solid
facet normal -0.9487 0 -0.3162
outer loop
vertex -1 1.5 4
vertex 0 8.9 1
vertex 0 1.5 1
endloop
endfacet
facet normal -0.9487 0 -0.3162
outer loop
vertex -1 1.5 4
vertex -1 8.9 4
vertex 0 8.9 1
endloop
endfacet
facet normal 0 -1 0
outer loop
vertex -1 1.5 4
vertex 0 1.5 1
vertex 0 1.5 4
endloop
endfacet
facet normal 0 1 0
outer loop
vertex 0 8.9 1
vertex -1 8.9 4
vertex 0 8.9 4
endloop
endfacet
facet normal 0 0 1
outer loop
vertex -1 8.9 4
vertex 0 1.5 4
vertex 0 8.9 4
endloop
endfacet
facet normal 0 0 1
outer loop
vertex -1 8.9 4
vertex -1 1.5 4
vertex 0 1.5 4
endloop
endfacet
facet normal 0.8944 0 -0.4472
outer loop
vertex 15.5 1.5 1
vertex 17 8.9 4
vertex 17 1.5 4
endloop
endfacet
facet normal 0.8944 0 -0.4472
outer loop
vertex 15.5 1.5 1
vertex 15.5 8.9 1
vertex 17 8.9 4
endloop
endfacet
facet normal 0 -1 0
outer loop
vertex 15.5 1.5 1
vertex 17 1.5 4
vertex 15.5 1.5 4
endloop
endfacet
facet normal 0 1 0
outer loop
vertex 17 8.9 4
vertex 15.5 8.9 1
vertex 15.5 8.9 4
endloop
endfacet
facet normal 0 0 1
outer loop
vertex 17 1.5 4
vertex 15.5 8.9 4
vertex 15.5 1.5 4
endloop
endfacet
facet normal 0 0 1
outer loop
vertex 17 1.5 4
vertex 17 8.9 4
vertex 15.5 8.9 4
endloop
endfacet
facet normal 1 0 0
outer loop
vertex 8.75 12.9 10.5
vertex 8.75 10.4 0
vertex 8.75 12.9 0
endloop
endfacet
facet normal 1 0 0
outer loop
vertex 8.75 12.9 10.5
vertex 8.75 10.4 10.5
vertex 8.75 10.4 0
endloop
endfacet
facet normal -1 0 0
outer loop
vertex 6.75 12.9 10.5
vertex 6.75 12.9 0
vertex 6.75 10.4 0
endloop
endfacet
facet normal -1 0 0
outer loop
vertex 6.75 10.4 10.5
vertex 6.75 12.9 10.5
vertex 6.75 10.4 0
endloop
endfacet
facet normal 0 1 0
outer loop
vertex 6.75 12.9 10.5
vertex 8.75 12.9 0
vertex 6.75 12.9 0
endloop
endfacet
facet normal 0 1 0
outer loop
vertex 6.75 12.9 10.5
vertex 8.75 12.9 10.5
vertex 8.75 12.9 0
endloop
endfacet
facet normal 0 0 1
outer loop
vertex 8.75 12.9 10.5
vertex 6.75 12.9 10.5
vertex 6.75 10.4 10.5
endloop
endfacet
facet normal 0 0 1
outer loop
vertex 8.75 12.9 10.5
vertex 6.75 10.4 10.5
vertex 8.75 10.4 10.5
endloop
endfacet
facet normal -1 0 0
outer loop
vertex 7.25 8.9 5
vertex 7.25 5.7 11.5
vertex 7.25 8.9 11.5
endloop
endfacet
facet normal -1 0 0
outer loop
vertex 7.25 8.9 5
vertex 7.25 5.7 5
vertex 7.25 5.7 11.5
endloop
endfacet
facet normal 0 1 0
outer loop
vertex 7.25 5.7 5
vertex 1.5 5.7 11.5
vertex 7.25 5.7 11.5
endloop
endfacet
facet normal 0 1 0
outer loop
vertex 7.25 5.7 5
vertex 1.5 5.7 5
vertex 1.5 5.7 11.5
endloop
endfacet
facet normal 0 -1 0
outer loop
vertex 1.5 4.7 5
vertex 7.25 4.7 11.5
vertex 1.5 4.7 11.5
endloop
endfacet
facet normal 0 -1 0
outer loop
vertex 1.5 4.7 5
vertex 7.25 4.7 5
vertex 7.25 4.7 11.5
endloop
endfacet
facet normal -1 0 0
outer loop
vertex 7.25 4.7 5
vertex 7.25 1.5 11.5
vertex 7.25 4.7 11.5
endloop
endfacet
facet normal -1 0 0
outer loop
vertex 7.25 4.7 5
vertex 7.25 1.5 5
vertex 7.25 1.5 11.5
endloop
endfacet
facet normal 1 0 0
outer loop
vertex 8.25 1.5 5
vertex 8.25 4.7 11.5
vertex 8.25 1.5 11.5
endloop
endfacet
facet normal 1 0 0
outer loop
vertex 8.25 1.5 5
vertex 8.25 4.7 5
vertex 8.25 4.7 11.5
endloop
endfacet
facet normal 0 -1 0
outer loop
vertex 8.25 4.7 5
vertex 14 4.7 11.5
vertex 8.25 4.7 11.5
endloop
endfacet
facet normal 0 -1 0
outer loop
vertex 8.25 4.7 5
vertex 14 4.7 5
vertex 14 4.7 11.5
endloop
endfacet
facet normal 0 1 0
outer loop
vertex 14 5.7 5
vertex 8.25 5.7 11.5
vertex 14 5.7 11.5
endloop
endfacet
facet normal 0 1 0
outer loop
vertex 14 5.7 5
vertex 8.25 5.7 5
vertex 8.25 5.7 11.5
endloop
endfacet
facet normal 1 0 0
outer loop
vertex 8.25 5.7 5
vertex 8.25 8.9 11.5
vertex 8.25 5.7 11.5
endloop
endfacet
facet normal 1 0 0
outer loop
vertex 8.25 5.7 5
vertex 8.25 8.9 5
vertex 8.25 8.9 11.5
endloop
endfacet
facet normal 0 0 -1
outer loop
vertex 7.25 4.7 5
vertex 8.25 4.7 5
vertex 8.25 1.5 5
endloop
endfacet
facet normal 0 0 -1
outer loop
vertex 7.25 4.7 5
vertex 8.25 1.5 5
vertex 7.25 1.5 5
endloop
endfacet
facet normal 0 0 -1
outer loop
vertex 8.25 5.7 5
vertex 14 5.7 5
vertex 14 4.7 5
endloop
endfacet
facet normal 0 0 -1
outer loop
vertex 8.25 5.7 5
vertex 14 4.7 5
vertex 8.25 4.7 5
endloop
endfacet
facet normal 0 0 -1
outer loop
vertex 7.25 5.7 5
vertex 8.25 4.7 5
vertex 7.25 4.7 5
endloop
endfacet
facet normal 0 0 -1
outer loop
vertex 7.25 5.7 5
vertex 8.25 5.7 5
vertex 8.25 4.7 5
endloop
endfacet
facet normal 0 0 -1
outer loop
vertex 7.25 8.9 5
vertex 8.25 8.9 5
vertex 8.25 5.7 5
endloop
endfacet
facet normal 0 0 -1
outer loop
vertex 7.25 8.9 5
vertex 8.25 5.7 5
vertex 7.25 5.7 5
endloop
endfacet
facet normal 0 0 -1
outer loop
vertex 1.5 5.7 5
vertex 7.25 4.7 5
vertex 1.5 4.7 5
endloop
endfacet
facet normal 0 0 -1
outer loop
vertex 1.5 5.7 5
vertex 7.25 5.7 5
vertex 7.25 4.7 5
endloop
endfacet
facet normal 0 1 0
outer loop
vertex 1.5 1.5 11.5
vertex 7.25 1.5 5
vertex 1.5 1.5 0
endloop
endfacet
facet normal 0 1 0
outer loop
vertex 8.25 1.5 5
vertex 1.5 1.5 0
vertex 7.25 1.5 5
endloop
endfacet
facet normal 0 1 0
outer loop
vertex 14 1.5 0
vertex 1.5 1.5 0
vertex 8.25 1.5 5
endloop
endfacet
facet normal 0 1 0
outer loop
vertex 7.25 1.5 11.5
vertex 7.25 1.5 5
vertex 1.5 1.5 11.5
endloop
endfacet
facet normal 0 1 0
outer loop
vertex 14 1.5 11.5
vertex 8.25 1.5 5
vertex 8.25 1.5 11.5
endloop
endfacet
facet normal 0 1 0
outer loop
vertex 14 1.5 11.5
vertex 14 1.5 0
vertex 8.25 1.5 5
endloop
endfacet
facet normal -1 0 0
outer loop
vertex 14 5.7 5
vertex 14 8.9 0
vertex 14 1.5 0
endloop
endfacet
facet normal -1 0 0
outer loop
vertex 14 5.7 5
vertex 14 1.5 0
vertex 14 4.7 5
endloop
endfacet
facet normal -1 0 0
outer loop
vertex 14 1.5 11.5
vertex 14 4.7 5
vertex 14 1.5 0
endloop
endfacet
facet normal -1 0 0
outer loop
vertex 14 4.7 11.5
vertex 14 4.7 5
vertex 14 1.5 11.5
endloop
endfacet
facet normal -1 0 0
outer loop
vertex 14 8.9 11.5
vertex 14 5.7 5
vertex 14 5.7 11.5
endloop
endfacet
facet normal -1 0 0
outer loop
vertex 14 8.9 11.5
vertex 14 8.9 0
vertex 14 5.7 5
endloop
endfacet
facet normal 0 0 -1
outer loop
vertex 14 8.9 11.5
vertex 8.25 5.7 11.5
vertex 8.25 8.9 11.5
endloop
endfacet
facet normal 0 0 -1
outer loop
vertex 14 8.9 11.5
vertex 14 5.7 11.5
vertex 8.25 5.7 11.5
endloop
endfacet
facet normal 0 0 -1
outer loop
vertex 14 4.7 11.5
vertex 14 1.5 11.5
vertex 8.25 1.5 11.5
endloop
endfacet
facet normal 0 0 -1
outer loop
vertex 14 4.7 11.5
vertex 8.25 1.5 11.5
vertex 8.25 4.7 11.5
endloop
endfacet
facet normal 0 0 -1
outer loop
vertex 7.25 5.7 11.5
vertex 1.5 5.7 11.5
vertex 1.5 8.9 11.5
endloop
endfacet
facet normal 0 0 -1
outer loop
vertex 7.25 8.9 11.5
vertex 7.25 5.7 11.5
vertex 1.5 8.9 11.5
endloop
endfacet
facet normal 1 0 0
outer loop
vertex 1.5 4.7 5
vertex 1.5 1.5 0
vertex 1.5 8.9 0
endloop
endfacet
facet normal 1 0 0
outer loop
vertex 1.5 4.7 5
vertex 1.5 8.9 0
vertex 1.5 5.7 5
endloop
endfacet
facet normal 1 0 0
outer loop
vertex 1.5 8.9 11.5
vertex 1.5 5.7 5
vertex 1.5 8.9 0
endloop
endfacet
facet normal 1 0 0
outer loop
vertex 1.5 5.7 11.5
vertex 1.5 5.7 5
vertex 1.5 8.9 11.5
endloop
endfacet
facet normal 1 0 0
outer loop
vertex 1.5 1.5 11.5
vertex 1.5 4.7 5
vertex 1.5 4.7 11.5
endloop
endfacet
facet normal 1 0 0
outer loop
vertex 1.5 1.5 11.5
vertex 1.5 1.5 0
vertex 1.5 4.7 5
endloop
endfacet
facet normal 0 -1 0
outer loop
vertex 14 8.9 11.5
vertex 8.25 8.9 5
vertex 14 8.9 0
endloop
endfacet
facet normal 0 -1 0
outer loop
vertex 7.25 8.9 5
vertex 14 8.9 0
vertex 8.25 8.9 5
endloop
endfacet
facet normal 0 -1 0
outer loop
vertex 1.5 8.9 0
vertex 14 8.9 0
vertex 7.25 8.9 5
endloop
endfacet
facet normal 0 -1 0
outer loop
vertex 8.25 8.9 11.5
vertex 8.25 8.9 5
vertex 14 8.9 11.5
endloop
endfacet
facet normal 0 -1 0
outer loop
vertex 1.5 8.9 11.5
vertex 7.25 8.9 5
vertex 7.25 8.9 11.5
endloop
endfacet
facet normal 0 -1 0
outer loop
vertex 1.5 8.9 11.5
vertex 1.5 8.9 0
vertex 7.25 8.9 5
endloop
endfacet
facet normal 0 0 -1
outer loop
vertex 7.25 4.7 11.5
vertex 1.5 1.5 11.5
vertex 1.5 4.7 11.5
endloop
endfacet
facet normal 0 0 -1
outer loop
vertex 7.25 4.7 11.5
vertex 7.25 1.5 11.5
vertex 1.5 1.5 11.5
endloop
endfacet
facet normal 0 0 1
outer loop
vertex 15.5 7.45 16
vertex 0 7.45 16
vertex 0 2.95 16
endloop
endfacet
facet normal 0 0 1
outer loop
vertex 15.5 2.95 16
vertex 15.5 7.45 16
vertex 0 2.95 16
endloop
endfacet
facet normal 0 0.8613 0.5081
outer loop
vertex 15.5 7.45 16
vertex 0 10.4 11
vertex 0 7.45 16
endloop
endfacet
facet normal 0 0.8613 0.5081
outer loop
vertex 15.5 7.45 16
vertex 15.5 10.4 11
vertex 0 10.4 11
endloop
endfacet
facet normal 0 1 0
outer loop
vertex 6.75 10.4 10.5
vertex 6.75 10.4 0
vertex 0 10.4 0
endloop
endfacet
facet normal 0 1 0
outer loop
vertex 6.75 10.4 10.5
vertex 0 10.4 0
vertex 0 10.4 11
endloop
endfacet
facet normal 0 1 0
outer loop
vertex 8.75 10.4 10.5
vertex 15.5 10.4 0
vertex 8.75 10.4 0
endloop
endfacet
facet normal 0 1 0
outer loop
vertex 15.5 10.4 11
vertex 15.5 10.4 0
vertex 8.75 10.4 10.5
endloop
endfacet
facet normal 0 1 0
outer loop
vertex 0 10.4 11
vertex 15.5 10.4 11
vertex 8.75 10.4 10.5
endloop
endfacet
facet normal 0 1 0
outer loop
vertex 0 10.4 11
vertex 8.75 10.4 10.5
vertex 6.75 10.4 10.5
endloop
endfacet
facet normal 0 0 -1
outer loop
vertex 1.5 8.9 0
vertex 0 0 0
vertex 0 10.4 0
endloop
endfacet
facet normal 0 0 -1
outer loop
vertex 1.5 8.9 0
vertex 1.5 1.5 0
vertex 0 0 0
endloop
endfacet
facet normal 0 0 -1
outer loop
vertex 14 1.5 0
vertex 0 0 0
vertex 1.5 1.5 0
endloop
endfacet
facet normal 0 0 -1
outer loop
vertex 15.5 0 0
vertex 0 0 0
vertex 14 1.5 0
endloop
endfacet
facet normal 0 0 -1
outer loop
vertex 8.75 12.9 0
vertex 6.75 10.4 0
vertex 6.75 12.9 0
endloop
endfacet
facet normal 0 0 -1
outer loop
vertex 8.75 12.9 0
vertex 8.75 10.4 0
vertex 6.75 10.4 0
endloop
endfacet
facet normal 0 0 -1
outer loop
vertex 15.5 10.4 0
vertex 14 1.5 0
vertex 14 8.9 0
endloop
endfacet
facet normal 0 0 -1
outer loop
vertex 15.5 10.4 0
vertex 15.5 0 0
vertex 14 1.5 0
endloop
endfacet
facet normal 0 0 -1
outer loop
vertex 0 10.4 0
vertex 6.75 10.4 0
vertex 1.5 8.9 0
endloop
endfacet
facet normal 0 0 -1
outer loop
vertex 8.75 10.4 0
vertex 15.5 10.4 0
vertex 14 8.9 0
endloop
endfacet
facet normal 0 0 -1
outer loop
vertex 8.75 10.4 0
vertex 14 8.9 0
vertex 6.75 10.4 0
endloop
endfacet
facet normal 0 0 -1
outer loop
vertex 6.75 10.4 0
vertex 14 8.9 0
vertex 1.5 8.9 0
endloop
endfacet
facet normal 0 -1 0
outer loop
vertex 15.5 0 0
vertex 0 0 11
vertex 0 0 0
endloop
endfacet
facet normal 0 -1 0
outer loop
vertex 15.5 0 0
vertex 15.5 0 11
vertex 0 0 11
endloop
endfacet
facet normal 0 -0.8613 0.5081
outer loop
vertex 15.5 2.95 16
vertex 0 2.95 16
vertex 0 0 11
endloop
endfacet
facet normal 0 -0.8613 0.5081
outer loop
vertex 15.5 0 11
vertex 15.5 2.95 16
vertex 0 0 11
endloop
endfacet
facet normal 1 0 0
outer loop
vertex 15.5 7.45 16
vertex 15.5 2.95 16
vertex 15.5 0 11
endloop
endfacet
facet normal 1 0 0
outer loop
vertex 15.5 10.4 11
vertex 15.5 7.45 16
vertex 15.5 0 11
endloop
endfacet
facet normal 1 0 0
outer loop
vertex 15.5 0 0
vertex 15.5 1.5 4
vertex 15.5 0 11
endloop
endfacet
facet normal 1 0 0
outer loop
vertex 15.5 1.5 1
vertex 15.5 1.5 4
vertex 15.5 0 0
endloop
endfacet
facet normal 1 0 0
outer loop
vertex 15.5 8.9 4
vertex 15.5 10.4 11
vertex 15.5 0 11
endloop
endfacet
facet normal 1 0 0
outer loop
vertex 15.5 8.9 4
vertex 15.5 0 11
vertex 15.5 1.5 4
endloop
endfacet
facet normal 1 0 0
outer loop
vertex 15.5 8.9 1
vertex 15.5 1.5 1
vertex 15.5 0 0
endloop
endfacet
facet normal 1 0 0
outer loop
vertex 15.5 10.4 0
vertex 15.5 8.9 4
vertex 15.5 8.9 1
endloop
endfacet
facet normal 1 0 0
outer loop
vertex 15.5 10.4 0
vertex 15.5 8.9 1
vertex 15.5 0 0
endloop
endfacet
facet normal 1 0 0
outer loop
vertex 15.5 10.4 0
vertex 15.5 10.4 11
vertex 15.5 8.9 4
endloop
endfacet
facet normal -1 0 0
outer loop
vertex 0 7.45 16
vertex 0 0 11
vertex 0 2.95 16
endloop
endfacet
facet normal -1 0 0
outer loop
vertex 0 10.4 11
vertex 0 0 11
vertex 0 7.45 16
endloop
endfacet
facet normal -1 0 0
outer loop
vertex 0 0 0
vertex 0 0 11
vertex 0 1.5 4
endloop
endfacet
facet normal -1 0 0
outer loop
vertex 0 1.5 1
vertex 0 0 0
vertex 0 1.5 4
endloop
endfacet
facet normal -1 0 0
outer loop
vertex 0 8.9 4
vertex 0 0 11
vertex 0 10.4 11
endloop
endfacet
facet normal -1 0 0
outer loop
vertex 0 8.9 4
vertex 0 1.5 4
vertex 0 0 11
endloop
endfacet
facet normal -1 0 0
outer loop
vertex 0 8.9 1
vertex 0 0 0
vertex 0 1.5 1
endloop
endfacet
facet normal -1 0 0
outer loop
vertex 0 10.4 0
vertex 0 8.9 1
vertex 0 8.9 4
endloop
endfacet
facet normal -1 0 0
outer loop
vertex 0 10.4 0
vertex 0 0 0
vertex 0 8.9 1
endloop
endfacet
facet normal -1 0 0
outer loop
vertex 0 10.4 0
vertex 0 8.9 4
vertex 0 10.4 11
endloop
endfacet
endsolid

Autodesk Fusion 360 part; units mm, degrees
sketch "Rail Sketch" plane through (0, 0, 0) normal (1, 0, 0) x (0, 0, -1)
  line L0 (0, 0) -> (0, 10.4)
  line L1 (0, 10.4) -> (-11, 10.4)
  line L2 (-11, 0) -> (-16, 2.95)
  line L3 (-16, 7.45) -> (-11, 10.4)
  line L4 (-16, 2.95) -> (-16, 7.45)
  line L5 (-11, 0) -> (0, 0)
  dimension "d1" = 5
  dimension "d2" = 4.5
  dimension "d3" = 10.4
  dimension "d4" = 16
extrude "Extrude1" add sketch "Rail Sketch" along normal blind 15.5
sketch "Back Hole" plane through (0, 0, 0) normal (0, 0, -1) x (-1, 0, 0)
  line L0 (0, 0) -> (0, 10.4)
  line L1 (0, 10.4) -> (-15.5, 10.4)
  line L2 (-15.5, 10.4) -> (-15.5, 0)
  line L3 (-15.5, 0) -> (0, 0)
  line L4 (-14, 8.9) -> (-1.5, 8.9)
  line L5 (-1.5, 8.9) -> (-1.5, 1.5)
  line L6 (-1.5, 1.5) -> (-14, 1.5)
  line L7 (-14, 1.5) -> (-14, 8.9)
  dimension "d8" = 1.5
  dimension "d9" = 1.5
  dimension "d10" = 1.5
  dimension "d11" = 1.5
extrude "Extrude2" cut sketch "Back Hole" against normal blind 11.5 contours L4 L5 L6 L7
sketch "Cross" plane through (0, 0, 11.5) normal (0, 0, -1) x (-1, 0, 0)
  line L0 (-14, 1.5) -> (-1.5, 1.5)
  line L1 (-1.5, 1.5) -> (-1.5, 8.9)
  line L2 (-1.5, 8.9) -> (-14, 8.9)
  line L3 (-14, 8.9) -> (-14, 1.5)
  line L4 (-7.75, 8.9) -> (-8.25, 8.9)
  line L5 (-8.25, 5.7) -> (-14, 5.7)
  line L6 (-14, 5.2) -> (-14, 4.7)
  line L7 (-8.25, 4.7) -> (-8.25, 1.5)
  line L8 (-7.75, 1.5) -> (-7.25, 1.5)
  line L9 (-7.25, 4.7) -> (-1.5, 4.7)
  line L10 (-1.5, 5.2) -> (-1.5, 5.7)
  line L11 (-14, 4.7) -> (-8.25, 4.7)
  line L12 (-7.25, 1.5) -> (-7.25, 1.6)
  line L13 (-7.25, 1.6) -> (-7.25, 4.7)
  line L14 (-1.5, 4.7) -> (-1.5, 5.2)
  line L15 (-1.5, 5.7) -> (-7.25, 5.7)
  line L16 (-7.25, 5.7) -> (-7.25, 8.9)
  line L17 (-7.75, 8.9) -> (-7.25, 8.9)
  line L18 (-8.25, 8.9) -> (-8.25, 5.7)
  line L19 (-8.25, 1.5) -> (-7.75, 1.5)
  line L20 (-14, 5.7) -> (-14, 5.2)
  dimension "d16" = 1
extrude "Extrude3" add sketch "Cross" along normal blind 6.5 contours L0 L1 L2 L3 L4 L5 L6 L7 L8 L9 L10 L11 L12 L13 L14 L15 L16 L17 L18 L19 L20
sketch "Vertical Support" plane through (0, 0, 0) normal (0, 0, -1) x (-1, 0, 0)
  line L0 (-1.5, 8.9) -> (-1.5, 1.5)
  line L1 (-1.5, 1.5) -> (-14, 1.5)
  line L2 (-14, 1.5) -> (-14, 8.9)
  line L3 (-14, 8.9) -> (-1.5, 8.9)
  line L4 (0, 0) -> (0, 10.4)
  line L5 (0, 10.4) -> (-15.5, 10.4)
  line L6 (-15.5, 10.4) -> (-15.5, 0)
  line L7 (-15.5, 0) -> (0, 0)
  line L8 (-8.75, 10.4) -> (-7.75, 10.4)
  line L9 (-7.75, 10.4) -> (-6.75, 10.4)
  line L10 (-6.75, 12.9) -> (-6.75, 10.4)
  line L11 (-6.75, 12.9) -> (-8.75, 12.9)
  line L12 (-8.75, 12.9) -> (-8.75, 10.4)
  dimension "d19" = 2
  dimension "d20" = 2.5
extrude "Extrude4" add sketch "Vertical Support" against normal blind 10.5 contours L5 L8 L9 L10 L11 L12
sketch "Right Fin " plane through (15.5, 0, 0) normal (1, 0, 0) x (0, 0, -1)
  line L0 (-16, 2.95) -> (-11, 0)
  line L1 (-11, 0) -> (0, 0)
  line L2 (0, 0) -> (0, 10.4)
  line L3 (0, 10.4) -> (-11, 10.4)
  line L4 (-11, 10.4) -> (-16, 7.45)
  line L5 (-16, 7.45) -> (-16, 2.95)
  line L6 (-1, 8.9) -> (-1, 1.5)
  line L7 (-1, 1.5) -> (-4, 1.5)
  line L8 (-4, 1.5) -> (-4, 8.9)
  line L9 (-4, 8.9) -> (-1, 8.9)
  dimension "d23" = 1.5
  dimension "d24" = 1.5
  dimension "d25" = 3
  dimension "d26" = 1
extrude "Extrude5" add sketch "Right Fin " along normal blind 1.5 contours L6 L7 L8 L9
sketch "Right Fin Slice" plane through (0, 8.9, 0) normal (0, 1, 0) x (-1, 0, 0)
  line L0 (-15.5, 1) -> (-15.5, 4)
  line L1 (-15.5, 4) -> (-17, 4)
  line L2 (-17, 4) -> (-17, 1)
  line L3 (-17, 1) -> (-15.5, 1)
  line L4 (-15.5, 1) -> (-17, 4)
extrude "Extrude6" cut sketch "Right Fin Slice" against normal blind 7.4 contours L2 L3 L4
sketch "Left Fin" plane through (0, 0, 0) normal (-1, 0, 0) x (0, 0, 1)
  line L0 (11, 0) -> (16, 2.95)
  line L1 (16, 2.95) -> (16, 7.45)
  line L2 (16, 7.45) -> (11, 10.4)
  line L3 (11, 10.4) -> (0, 10.4)
  line L4 (0, 10.4) -> (0, 0)
  line L5 (0, 0) -> (11, 0)
  line L6 (1, 8.9) -> (4, 8.9)
  line L7 (4, 8.9) -> (4, 1.5)
  line L8 (4, 1.5) -> (1, 1.5)
  line L9 (1, 1.5) -> (1, 8.9)
  dimension "d31" = 1
  dimension "d32" = 3
  dimension "d33" = 1.5
  dimension "d34" = 1.5
extrude "Extrude7" add sketch "Left Fin" along normal blind 1 contours L6 L7 L8 L9
sketch "Left Fin Slice" plane through (0, 8.9, 0) normal (0, 1, 0) x (-1, 0, 0)
  line L0 (0, 4) -> (0, 1)
  line L1 (0, 1) -> (1, 1)
  line L2 (1, 1) -> (1, 4)
  line L3 (1, 4) -> (0, 4)
  line L4 (0, 1) -> (1, 4)
extrude "Extrude8" cut sketch "Left Fin Slice" against normal blind 7.4 contours L1 L2 L4
equation "d17 = 11.5 mm - 5 mm"
